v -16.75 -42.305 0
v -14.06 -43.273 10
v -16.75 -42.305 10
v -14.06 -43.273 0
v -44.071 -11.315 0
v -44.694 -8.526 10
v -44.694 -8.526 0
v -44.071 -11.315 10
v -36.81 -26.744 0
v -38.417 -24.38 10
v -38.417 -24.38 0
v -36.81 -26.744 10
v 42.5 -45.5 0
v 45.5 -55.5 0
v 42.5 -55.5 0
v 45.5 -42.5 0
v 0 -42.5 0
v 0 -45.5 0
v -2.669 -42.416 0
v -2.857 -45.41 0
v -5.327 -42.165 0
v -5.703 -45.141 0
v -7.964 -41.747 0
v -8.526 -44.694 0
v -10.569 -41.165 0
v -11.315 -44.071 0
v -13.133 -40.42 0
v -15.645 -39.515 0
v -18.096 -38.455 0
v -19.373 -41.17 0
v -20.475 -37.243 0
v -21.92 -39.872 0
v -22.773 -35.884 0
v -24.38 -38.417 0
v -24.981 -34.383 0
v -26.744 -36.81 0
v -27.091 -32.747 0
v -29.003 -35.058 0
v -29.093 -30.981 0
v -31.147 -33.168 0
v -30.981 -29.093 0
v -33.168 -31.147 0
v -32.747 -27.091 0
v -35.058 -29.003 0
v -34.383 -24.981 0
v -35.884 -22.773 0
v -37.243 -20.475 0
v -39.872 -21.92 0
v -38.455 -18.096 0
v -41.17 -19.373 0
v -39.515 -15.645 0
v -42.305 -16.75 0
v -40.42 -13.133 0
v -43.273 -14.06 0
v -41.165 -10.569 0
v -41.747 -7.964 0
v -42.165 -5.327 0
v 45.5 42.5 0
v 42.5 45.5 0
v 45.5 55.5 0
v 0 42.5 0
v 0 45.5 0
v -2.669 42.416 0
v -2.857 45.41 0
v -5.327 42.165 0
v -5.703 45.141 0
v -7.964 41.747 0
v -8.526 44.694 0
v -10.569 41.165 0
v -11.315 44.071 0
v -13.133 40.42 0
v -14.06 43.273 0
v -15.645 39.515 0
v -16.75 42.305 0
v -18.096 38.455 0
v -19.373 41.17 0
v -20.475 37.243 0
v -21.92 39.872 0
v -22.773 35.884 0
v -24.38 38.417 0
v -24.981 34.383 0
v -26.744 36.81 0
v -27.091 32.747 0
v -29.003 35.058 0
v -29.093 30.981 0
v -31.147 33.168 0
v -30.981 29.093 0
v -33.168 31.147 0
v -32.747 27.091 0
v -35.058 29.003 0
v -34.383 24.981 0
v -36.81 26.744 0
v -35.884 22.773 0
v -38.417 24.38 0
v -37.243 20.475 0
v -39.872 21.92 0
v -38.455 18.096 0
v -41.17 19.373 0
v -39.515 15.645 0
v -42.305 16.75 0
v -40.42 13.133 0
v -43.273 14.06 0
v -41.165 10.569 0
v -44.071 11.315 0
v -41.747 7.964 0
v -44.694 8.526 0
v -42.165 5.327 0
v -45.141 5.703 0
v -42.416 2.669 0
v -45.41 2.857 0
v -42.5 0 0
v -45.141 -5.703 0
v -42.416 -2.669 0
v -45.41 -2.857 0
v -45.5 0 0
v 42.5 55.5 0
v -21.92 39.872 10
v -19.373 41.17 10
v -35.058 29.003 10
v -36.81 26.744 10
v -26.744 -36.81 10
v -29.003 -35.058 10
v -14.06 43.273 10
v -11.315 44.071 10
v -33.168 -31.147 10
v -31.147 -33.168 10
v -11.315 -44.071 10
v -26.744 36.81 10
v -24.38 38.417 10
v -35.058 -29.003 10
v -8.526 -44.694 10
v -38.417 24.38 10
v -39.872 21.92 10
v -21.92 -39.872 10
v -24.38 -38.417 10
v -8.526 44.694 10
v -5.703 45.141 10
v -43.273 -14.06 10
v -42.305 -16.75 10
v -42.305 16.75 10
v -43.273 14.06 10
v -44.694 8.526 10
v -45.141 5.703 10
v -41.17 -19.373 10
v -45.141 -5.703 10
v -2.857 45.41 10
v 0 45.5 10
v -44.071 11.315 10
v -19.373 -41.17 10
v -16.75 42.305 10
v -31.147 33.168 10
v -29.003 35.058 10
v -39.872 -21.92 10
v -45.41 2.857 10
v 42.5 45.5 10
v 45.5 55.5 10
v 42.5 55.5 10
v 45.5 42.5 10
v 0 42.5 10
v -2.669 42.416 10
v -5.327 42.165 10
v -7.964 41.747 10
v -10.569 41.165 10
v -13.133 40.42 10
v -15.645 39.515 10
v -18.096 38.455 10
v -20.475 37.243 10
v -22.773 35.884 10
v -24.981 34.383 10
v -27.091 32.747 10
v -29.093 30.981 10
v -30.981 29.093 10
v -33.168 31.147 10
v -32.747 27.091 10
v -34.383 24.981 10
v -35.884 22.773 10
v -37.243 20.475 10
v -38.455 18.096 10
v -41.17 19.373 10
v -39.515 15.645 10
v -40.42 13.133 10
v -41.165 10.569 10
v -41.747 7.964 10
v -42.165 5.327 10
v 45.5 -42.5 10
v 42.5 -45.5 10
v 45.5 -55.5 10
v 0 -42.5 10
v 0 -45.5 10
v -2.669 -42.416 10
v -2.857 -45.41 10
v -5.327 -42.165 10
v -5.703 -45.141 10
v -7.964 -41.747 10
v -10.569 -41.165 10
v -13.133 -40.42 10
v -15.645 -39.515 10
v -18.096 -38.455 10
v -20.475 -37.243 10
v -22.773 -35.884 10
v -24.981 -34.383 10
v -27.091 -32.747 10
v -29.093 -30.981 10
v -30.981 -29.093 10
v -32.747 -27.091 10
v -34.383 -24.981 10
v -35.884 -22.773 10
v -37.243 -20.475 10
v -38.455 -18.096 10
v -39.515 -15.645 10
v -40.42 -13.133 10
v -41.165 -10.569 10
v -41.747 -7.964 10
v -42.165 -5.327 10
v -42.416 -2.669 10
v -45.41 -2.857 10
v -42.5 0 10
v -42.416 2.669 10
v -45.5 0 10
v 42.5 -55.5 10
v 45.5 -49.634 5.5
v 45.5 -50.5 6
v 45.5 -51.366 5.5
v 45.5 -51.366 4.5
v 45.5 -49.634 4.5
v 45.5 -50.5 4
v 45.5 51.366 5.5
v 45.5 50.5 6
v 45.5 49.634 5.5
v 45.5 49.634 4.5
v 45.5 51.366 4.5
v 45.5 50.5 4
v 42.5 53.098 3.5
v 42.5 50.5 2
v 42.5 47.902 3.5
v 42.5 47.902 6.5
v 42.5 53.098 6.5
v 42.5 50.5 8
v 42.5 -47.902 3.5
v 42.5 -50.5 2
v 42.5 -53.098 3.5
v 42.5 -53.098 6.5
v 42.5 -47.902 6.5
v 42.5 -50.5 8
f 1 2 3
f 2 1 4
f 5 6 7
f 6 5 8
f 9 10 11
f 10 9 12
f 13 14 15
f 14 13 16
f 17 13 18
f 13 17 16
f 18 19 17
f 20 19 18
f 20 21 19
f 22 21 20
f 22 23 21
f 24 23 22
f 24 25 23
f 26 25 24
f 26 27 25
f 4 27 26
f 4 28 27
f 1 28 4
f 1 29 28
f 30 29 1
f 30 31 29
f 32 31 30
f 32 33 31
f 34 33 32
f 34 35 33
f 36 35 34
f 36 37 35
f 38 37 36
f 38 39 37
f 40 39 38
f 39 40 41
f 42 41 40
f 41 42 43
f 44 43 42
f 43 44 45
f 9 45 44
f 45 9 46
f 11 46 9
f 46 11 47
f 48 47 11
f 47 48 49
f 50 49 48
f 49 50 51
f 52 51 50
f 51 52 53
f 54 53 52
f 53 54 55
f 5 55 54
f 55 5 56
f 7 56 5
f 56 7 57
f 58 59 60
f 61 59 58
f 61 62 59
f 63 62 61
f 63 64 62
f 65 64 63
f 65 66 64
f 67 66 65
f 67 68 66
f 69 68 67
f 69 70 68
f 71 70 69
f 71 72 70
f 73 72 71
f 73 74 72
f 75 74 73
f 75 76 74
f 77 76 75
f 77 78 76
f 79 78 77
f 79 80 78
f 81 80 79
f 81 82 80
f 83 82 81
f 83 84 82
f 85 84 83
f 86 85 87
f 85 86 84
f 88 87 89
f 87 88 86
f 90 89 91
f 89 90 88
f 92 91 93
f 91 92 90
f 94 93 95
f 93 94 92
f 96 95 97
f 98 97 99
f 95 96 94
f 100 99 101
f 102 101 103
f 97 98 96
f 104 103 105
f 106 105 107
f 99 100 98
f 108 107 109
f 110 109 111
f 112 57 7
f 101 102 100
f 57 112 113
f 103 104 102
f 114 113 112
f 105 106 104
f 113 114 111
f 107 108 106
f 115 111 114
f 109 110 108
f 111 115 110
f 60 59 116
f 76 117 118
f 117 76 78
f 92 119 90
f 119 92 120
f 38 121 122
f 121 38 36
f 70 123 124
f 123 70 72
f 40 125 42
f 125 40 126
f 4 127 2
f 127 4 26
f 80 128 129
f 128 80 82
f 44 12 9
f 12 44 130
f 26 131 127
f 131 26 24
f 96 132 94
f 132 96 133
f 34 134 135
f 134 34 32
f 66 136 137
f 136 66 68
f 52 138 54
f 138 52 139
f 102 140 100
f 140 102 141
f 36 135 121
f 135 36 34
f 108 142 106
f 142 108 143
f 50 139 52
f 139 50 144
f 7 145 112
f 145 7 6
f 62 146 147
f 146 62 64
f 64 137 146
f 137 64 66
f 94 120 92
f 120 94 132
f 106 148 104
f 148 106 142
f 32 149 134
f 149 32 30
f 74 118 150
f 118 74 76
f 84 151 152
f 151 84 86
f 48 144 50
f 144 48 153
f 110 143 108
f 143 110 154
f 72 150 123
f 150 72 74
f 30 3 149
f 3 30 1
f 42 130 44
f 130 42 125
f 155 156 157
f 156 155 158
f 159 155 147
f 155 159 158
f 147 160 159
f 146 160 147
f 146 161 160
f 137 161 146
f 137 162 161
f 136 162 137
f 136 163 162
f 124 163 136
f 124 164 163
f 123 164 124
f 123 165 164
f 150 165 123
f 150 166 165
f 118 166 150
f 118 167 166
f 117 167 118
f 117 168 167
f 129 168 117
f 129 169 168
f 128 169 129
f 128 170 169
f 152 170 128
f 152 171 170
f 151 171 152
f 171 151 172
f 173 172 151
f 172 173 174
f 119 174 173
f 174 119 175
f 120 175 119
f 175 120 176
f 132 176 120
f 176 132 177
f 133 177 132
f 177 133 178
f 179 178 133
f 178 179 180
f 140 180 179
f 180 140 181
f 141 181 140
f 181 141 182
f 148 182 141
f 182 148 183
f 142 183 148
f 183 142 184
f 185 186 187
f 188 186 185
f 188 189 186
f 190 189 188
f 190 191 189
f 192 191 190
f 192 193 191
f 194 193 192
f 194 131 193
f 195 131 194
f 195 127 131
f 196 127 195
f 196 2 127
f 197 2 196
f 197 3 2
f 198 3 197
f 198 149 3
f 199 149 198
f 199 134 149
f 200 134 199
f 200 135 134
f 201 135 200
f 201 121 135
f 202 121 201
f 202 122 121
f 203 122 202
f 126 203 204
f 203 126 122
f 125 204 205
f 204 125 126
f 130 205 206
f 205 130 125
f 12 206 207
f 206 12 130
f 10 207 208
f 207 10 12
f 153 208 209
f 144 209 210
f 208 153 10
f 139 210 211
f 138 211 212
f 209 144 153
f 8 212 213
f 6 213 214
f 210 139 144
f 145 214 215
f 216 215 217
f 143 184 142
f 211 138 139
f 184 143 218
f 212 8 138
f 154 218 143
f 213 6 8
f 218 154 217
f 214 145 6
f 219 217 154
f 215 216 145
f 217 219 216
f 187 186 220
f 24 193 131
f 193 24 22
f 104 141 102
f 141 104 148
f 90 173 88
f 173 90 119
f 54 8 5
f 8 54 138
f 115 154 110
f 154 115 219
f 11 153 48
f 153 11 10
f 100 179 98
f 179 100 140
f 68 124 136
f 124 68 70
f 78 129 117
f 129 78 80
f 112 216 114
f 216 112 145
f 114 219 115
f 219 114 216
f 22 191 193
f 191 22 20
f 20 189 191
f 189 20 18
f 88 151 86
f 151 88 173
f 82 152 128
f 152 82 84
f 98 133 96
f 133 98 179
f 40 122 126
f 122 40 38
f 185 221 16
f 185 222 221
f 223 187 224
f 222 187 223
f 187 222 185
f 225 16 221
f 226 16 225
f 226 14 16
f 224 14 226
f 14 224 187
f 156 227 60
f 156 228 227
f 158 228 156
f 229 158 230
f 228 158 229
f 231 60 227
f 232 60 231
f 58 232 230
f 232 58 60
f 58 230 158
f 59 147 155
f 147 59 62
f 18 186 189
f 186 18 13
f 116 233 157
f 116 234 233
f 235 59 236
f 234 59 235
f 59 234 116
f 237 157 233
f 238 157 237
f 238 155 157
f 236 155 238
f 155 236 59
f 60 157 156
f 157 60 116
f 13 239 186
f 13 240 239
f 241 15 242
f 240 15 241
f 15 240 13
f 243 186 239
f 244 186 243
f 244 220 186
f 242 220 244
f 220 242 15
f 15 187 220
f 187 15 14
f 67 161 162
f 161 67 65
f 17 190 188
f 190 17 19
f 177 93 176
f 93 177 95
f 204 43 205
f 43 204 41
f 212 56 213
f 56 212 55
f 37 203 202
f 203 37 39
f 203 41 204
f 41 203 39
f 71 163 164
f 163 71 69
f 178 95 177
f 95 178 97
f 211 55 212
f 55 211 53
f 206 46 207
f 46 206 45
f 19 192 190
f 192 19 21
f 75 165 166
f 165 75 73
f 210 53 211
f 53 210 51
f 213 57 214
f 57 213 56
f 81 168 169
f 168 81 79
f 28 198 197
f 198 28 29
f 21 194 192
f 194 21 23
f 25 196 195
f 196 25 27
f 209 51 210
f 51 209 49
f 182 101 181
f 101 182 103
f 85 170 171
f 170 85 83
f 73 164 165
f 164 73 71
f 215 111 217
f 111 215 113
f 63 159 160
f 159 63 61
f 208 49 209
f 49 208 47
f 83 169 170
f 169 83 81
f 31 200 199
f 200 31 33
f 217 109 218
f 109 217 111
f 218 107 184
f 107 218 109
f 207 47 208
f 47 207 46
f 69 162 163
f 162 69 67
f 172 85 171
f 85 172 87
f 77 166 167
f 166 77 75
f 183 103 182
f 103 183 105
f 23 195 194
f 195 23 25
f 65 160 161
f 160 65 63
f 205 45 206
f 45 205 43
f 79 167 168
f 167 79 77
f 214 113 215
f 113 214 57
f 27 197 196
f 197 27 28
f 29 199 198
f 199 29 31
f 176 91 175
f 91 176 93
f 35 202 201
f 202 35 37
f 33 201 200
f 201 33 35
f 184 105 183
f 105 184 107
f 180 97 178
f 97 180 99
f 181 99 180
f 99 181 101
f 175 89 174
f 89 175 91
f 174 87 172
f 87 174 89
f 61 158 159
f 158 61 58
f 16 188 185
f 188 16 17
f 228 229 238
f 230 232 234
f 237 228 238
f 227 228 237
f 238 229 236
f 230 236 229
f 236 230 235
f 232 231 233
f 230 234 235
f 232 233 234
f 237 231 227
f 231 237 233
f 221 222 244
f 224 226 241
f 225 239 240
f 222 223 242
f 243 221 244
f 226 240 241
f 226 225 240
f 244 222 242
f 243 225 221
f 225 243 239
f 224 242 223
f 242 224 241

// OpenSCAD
module pipe_holder() {
  d_inner = 85;
  thickness = 3;
  d_outer = d_inner + 2*thickness;
  h = 10;
  support_w = 10;

  module screw_hole() {
    translate([0, 0, h / 2]) rotate([0, -90, 0]) cylinder(r2 = 3, , r1 = 1, h = 3, $fn = 6);
  }

  module mass() {
    difference() {
      union() {
        cylinder(d = d_outer, h = h, $fn = 100);
        translate([0, - d_outer / 2]) cube([d_outer / 2, d_outer, h]);
        translate([d_outer / 2 - thickness, d_outer / 2, 0]) cube([thickness, support_w, h]);
        translate([d_outer / 2 - thickness, - d_outer / 2 - support_w, 0]) cube([thickness, support_w, h]);
      }
      translate([0, 0, - 1]) union() {
        cylinder(d = d_inner, h = h + 2, $fn = 100);
        translate([0, - d_inner / 2]) cube([d_outer / 2 + 1, d_inner, h + 2]);
      }
    }
  }

  difference() {
    mass();
    translate([d_outer / 2, d_outer / 2 + support_w / 2, 0]) screw_hole();
    translate([d_outer / 2, -(d_outer / 2 + support_w / 2), 0]) screw_hole();
  }
}

pipe_holder();
